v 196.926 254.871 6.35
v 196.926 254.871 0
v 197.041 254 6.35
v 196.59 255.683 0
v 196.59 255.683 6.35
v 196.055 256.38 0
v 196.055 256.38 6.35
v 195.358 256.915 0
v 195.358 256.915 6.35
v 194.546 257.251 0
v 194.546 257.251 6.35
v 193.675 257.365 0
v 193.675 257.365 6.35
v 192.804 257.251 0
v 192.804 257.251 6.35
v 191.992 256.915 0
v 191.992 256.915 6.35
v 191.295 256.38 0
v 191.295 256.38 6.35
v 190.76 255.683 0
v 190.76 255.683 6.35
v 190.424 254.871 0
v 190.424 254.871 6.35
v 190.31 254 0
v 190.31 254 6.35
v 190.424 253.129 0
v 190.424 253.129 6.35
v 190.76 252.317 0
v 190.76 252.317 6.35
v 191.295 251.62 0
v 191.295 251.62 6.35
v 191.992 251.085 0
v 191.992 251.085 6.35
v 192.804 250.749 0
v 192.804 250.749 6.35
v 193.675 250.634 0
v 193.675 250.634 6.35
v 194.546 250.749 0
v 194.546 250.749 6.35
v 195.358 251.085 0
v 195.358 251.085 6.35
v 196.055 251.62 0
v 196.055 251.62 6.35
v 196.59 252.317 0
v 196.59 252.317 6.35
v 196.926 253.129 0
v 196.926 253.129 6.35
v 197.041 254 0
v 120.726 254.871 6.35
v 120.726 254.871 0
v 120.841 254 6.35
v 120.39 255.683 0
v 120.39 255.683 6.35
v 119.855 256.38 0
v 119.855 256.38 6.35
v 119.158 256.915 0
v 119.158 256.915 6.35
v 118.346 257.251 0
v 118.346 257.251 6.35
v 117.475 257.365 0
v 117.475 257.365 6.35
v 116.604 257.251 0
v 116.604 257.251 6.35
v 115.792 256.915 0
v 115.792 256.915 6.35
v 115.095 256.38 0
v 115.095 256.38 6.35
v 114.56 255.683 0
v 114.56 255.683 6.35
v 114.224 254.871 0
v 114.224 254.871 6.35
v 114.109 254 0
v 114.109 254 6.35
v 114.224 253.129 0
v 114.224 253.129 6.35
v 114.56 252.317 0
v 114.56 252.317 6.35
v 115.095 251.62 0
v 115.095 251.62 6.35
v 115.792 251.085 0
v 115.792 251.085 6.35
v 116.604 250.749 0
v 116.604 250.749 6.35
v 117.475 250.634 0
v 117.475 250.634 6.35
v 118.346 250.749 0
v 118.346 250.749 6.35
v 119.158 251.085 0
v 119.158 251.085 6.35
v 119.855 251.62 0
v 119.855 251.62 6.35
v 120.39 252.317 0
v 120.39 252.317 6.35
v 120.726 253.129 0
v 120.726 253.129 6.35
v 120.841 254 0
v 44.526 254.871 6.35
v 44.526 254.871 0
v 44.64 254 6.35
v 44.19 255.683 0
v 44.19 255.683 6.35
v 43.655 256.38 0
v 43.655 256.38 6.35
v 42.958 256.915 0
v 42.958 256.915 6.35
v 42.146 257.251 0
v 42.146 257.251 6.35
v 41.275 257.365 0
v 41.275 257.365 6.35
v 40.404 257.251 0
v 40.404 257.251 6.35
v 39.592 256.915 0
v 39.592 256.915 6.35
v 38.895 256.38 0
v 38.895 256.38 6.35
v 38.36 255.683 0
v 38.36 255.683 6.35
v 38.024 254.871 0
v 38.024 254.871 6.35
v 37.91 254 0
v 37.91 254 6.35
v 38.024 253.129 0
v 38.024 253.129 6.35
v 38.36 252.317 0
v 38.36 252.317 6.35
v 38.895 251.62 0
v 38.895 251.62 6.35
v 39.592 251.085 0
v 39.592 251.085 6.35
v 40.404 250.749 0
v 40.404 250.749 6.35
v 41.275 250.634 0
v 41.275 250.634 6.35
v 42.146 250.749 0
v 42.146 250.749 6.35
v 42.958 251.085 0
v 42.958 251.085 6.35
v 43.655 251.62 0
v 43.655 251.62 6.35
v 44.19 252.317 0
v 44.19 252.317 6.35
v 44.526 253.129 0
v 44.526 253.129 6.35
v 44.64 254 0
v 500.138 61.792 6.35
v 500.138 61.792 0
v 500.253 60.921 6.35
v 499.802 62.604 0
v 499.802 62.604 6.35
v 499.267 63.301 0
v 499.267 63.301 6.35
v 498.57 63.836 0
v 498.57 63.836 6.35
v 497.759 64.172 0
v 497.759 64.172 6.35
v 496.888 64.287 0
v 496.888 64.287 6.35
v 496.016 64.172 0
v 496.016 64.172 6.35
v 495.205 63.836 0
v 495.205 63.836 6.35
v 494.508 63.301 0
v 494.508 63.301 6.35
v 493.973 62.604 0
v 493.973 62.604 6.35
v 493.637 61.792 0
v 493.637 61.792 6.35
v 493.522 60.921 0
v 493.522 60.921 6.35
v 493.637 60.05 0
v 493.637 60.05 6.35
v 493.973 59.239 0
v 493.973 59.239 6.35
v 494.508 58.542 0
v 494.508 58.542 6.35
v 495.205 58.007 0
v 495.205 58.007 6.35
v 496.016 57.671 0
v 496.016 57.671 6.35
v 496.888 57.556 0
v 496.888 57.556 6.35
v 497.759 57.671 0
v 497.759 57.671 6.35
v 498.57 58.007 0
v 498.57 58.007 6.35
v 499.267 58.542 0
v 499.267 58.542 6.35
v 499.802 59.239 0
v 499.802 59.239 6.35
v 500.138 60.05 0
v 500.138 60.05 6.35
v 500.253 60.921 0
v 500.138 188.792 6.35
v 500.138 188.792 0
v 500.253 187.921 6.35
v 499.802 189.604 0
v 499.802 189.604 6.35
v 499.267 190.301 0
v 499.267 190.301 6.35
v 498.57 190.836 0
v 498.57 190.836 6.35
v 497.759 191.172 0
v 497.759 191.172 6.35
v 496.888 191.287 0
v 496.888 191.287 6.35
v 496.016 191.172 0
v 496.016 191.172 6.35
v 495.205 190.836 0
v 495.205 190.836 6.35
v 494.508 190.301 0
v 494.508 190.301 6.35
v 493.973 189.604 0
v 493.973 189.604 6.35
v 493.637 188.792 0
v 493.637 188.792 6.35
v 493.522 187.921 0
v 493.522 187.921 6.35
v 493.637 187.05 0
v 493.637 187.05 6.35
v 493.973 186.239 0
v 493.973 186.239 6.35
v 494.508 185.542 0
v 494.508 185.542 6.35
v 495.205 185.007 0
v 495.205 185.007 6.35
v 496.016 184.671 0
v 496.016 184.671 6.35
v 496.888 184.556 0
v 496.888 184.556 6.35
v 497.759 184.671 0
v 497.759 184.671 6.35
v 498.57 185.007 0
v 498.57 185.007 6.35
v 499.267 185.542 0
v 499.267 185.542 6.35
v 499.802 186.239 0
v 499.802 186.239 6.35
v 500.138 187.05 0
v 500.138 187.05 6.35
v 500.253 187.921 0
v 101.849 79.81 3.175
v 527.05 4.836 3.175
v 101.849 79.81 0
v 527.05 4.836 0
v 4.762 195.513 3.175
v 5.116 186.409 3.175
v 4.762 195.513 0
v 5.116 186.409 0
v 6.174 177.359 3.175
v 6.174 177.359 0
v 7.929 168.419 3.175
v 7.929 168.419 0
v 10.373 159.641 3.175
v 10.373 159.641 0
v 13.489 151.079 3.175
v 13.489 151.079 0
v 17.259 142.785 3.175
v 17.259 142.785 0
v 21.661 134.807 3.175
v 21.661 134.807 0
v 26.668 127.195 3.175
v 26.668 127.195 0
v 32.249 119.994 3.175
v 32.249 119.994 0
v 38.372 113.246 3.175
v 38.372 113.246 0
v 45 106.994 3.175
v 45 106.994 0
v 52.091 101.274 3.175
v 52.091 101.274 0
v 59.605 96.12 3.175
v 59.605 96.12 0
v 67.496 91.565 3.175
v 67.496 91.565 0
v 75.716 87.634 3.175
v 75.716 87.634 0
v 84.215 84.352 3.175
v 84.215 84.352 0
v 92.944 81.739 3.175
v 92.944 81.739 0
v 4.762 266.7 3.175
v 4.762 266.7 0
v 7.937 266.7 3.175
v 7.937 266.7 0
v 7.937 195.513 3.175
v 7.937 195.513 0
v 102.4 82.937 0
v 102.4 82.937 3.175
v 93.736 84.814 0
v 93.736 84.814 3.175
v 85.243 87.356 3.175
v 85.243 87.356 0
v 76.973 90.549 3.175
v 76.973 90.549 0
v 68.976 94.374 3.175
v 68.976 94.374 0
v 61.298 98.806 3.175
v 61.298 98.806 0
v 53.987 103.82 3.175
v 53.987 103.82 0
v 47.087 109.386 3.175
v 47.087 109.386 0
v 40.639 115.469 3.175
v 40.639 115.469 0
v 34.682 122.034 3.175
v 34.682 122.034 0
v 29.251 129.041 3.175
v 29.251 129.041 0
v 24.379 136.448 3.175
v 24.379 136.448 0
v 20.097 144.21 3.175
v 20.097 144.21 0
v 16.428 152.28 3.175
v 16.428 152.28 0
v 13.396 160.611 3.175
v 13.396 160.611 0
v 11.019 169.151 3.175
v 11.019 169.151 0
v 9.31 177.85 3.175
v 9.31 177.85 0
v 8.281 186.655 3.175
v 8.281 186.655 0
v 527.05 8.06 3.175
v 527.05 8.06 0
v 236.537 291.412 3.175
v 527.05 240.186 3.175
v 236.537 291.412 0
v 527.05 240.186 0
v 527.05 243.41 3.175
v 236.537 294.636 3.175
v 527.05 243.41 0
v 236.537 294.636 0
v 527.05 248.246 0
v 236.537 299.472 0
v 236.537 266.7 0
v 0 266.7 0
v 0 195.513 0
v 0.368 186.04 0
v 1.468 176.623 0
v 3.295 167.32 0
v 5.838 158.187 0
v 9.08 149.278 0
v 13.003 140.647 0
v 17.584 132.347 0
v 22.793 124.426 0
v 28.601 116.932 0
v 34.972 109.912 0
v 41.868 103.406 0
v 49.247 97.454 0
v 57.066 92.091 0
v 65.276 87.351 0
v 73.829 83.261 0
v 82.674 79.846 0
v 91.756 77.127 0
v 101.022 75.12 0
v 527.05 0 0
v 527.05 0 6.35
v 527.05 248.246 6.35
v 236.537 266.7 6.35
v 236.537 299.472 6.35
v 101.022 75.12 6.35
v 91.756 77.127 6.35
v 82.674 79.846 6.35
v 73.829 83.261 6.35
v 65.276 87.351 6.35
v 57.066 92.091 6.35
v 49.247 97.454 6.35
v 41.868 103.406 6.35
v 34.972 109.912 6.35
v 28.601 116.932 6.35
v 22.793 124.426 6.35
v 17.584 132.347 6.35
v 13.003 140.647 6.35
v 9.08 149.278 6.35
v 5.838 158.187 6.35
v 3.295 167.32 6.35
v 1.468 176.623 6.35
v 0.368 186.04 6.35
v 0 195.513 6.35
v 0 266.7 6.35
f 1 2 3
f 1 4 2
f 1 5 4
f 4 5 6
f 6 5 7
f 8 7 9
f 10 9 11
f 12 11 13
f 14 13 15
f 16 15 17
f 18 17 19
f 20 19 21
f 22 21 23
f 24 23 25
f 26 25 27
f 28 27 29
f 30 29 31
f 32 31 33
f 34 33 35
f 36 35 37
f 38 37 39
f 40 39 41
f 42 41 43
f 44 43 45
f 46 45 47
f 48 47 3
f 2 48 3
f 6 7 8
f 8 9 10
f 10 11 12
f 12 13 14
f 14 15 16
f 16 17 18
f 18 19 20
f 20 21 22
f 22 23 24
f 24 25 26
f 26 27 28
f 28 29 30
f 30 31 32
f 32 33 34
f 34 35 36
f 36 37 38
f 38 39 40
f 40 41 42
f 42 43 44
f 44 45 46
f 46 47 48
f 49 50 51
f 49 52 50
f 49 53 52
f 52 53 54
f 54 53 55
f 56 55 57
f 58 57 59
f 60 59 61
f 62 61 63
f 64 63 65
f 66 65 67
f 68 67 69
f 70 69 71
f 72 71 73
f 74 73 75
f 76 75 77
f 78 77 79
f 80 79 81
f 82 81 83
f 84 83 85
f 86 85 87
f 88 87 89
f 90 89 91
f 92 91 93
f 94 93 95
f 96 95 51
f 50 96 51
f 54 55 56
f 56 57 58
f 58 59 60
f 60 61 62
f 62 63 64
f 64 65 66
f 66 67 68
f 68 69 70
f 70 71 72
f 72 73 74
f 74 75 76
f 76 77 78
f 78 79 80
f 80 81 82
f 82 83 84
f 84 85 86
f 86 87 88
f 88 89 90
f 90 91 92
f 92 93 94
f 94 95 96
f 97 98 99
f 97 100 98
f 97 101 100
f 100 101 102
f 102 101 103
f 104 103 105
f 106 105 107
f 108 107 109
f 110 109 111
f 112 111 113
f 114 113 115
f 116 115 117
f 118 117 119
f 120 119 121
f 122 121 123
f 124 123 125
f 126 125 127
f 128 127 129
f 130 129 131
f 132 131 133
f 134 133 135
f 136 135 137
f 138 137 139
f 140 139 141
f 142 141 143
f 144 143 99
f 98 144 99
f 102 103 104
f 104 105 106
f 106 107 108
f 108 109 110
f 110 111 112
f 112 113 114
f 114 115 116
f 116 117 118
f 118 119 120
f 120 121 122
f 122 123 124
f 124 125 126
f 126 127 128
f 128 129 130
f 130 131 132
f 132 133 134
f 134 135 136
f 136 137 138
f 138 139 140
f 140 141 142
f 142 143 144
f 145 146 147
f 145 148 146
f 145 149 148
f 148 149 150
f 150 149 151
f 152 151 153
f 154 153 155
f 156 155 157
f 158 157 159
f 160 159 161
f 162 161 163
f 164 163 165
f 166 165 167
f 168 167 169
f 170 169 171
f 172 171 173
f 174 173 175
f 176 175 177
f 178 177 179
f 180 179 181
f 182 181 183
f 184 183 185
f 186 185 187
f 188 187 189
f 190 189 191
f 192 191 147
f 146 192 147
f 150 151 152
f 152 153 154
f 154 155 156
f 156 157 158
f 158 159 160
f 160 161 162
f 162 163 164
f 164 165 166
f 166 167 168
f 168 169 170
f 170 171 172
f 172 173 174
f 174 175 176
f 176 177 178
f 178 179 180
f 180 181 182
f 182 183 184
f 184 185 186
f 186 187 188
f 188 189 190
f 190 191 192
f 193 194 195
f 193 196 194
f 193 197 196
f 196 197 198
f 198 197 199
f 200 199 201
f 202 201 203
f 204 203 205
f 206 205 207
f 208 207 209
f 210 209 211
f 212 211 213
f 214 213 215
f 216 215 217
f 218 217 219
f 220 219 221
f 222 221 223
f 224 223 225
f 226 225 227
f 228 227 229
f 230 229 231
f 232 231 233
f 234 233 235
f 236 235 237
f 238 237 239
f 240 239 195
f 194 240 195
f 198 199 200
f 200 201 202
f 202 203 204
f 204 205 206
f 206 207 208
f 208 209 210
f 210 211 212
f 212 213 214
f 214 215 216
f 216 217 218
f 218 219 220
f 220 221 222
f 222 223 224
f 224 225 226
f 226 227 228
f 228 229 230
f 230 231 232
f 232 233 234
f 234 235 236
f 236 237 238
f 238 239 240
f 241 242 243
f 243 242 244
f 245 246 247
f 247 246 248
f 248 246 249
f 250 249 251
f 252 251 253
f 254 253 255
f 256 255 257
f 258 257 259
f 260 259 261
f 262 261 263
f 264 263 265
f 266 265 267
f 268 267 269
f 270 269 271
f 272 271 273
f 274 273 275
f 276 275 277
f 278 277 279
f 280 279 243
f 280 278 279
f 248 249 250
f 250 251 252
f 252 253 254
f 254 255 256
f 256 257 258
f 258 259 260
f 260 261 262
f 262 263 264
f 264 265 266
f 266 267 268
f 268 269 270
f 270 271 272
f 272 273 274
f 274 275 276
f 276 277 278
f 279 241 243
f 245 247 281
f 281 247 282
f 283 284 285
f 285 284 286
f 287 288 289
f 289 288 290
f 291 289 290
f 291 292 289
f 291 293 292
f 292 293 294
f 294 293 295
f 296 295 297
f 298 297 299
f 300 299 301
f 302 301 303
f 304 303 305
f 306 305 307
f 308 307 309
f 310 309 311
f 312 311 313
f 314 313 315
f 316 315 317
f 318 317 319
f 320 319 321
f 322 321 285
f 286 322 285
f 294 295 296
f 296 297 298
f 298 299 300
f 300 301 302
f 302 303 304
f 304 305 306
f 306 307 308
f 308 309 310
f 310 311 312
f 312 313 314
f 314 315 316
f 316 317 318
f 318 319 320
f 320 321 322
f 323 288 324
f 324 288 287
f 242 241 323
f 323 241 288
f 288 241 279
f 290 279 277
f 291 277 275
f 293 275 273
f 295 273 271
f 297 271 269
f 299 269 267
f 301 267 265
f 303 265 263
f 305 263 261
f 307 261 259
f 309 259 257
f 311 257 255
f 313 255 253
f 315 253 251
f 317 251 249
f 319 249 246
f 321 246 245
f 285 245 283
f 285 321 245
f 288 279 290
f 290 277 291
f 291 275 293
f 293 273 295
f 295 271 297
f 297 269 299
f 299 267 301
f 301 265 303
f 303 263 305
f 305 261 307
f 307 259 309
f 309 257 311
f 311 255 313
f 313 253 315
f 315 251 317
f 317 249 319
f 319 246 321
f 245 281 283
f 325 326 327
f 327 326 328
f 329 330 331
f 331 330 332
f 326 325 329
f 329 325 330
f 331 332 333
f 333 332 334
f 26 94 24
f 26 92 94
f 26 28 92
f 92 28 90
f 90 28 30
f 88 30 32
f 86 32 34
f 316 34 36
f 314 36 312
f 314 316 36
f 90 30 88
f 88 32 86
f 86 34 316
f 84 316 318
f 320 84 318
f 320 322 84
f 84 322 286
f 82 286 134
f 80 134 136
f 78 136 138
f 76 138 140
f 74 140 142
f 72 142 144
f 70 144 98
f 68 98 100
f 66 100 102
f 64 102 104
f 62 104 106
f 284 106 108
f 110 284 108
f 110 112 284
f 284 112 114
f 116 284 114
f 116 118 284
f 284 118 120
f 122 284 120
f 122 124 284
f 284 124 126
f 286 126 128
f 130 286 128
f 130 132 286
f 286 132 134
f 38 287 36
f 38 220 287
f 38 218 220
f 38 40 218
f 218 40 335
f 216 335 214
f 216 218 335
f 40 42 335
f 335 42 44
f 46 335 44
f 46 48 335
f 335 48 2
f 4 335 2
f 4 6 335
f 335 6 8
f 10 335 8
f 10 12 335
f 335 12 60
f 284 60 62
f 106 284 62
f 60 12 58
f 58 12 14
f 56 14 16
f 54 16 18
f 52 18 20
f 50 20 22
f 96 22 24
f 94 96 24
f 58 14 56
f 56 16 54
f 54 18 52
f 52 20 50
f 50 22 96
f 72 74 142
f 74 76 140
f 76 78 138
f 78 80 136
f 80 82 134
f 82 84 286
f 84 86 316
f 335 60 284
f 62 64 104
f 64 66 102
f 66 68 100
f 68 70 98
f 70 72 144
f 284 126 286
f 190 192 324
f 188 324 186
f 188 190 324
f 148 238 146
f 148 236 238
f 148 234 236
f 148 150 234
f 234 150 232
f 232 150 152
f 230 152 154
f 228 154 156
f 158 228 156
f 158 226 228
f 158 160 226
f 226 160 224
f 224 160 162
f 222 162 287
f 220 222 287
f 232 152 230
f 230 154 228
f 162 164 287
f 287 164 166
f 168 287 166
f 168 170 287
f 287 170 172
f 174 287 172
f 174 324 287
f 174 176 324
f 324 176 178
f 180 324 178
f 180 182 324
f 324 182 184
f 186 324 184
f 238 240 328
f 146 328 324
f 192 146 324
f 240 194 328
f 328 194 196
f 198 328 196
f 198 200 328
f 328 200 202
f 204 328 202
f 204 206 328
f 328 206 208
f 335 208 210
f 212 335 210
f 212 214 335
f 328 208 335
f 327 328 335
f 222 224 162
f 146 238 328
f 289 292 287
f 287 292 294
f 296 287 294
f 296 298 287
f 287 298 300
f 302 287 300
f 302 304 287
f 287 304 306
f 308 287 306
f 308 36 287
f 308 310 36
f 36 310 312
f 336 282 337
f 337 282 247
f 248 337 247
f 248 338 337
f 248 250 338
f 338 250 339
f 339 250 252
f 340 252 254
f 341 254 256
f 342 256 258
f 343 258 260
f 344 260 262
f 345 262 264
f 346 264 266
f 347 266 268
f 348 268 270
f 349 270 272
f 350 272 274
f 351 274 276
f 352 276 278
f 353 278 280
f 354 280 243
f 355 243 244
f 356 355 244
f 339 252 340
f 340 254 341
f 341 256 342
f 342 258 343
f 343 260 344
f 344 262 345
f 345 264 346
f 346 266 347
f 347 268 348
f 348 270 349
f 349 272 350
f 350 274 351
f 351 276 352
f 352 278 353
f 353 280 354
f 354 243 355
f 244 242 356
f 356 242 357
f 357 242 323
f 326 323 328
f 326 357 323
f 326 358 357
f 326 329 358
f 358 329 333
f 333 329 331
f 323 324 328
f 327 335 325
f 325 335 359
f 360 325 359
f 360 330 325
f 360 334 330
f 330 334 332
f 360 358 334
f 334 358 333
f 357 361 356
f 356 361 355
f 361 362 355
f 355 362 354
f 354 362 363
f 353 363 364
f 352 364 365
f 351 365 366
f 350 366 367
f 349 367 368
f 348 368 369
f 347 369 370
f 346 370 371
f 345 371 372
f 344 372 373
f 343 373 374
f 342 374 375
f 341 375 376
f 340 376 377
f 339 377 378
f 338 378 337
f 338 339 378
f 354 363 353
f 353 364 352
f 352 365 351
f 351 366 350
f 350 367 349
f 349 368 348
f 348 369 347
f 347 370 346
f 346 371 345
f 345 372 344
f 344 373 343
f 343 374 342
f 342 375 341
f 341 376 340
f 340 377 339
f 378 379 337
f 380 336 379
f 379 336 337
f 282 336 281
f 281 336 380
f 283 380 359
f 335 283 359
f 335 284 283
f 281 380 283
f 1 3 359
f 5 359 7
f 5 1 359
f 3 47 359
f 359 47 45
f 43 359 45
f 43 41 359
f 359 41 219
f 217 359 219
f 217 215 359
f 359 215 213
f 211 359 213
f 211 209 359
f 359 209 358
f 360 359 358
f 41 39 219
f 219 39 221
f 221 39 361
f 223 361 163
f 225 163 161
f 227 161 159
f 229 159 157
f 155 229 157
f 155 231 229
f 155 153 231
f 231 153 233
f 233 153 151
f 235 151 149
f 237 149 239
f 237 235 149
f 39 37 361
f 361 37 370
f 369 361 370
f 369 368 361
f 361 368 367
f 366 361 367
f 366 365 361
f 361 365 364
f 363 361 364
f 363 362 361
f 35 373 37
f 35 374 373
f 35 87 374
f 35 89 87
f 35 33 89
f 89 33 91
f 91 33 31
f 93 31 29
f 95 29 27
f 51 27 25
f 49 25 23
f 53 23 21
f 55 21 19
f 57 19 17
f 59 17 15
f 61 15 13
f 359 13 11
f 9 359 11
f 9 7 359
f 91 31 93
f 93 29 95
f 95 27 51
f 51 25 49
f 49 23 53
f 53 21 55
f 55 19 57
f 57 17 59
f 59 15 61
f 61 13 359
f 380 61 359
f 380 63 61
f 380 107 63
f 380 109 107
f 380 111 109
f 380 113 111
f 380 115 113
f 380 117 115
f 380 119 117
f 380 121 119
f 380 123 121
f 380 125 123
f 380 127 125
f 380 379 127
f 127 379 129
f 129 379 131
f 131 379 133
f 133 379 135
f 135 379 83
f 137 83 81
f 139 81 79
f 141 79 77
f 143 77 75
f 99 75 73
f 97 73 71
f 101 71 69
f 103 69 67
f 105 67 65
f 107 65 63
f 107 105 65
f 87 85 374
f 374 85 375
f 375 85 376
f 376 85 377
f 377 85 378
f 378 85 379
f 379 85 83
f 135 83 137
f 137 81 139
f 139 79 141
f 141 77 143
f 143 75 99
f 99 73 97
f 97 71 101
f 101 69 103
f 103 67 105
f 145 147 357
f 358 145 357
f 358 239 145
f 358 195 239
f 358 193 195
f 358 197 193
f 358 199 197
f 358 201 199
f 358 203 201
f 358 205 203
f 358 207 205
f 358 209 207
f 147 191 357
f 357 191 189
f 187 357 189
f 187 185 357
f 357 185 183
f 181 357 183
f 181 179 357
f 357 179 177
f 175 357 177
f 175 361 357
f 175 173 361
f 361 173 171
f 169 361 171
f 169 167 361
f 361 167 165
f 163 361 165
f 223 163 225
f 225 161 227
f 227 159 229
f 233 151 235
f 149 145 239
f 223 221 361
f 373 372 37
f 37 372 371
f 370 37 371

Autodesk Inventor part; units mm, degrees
ref_plane "YZ Plane" through (0, 0, 0) normal (1, 0, 0) x (0, 1, 0)
ref_plane "XZ Plane" through (0, 0, 0) normal (0, 1, 0) x (-1, 0, 0)
ref_plane "XY Plane" through (0, 0, 0) normal (0, 0, 1) x (1, 0, 0)
sketch "Sketch1" plane through (0, 0, 0) normal (0, 0, 1) x (1, 0, 0)
  line L0 (0, 0) -> (236.5375, 0)
  line L1 (527.05, 0) -> (527.05, 248.2464)
  line L2 (236.5375, 266.7) -> (0, 266.7)
  line L3 (0, 266.7) -> (0, 195.5132)
  line L4 (527.05, 0) -> (101.0217, 75.1203)
  line L5 (527.05, 248.2464) -> (236.5375, 299.4716)
  line L6 (236.5375, 266.7) -> (236.5375, 299.4716)
  arc A0 (0, 195.5132) -> (101.0217, 75.1203) centre (122.2502, 195.5132) ccw
  circle A1 centre (496.8875, 187.9214) radius 3.3655
  circle A2 centre (496.8875, 60.9214) radius 3.3655
  point P0 (0, 92.9331)
  dimension "d0" = 266.7
  dimension "d2" = 10
  dimension "d3" = 244.475
  dimension "d4" = 236.5375
  dimension "d5" = 527.05
  dimension "d18" = 122.2502
  dimension "d20" = 6.731
  dimension "d21" = 60.325
  dimension "d22" = 127
  dimension "d23" = 30.1625
  dimension "d24" = 30.1625
extrude "Extrusion1" add sketch "Sketch1" along normal blind 6.35 contours L4 A0 L3 L2 L6 L5 L1 | A1 | A2
sketch "Sketch2" plane through (0, 0, 0) normal (0, 0, -1) x (-1, 0, 0)
  line L0 (-527.05, 248.2464) -> (-236.5375, 299.4716) projected
  line L1 (-101.0217, 75.1203) -> (-527.05, 0) projected
  arc A0 (-101.0217, 75.1203) -> (0, 195.5132) centre (-122.2502, 195.5132) ccw projected
  line L2 (0, 266.7) -> (0, 195.5132) projected
  line L3 (-527.05, 243.4105) -> (-236.5375, 294.6356)
  line L4 (-527.05, 240.1865) -> (-236.5375, 291.4117)
  line L5 (-527.05, 4.836) -> (-101.8487, 79.8104)
  arc A1 (-101.8487, 79.8104) -> (-4.7625, 195.5132) centre (-122.2502, 195.5132) ccw
  line L6 (-4.7625, 195.5132) -> (-4.7625, 266.7)
  line L7 (-527.05, 8.0599) -> (-102.4, 82.9372)
  arc A2 (-102.4, 82.9372) -> (-7.9375, 195.5132) centre (-122.2502, 195.5132) ccw
  line L8 (-7.9375, 195.5132) -> (-7.9375, 266.7)
  line L9 (-527.05, 0) -> (-527.05, 248.2464) projected
  line L10 (-236.5375, 299.4716) -> (-236.5375, 266.7) projected
  line L11 (-236.5375, 266.7) -> (0, 266.7) projected
  line L12 (-527.05, 240.1865) -> (-527.05, 243.4105)
  line L13 (-236.5375, 294.6356) -> (-236.5375, 291.4117)
  line L14 (-7.9375, 266.7) -> (-4.7625, 266.7)
  line L15 (-527.05, 8.0599) -> (-527.05, 4.836)
  dimension "d27" = 4.7625
  dimension "d28" = 3.175
  dimension "d29" = 4.7625
  dimension "d30" = 4.7625
  dimension "d31" = 3.175
  dimension "d32" = 3.175
extrude "Extrusion2" cut sketch "Sketch2" against normal blind 3.175 contours L3 L10 L4 L9 | L7 A2 L8 L11 L6 A1 L5 L9
extrude "Extrusion3" cut sketch "Sketch1" along normal blind 25.4 contours A1 | A2
hole "Hole1" at (41.275, 254, 0) direction (0, 0, 1) diameter 6.731 depth 25.4 tip angle 118
pattern_linear "Rectangular Pattern1" count 3 spacing 76.2 along (1, 0, 0) of "Hole1"
equation "\"d24\" = d23"
equation "\"d29\" = d27"
equation "\"d30\" = d27"
properties part number "GE-12087-01"
